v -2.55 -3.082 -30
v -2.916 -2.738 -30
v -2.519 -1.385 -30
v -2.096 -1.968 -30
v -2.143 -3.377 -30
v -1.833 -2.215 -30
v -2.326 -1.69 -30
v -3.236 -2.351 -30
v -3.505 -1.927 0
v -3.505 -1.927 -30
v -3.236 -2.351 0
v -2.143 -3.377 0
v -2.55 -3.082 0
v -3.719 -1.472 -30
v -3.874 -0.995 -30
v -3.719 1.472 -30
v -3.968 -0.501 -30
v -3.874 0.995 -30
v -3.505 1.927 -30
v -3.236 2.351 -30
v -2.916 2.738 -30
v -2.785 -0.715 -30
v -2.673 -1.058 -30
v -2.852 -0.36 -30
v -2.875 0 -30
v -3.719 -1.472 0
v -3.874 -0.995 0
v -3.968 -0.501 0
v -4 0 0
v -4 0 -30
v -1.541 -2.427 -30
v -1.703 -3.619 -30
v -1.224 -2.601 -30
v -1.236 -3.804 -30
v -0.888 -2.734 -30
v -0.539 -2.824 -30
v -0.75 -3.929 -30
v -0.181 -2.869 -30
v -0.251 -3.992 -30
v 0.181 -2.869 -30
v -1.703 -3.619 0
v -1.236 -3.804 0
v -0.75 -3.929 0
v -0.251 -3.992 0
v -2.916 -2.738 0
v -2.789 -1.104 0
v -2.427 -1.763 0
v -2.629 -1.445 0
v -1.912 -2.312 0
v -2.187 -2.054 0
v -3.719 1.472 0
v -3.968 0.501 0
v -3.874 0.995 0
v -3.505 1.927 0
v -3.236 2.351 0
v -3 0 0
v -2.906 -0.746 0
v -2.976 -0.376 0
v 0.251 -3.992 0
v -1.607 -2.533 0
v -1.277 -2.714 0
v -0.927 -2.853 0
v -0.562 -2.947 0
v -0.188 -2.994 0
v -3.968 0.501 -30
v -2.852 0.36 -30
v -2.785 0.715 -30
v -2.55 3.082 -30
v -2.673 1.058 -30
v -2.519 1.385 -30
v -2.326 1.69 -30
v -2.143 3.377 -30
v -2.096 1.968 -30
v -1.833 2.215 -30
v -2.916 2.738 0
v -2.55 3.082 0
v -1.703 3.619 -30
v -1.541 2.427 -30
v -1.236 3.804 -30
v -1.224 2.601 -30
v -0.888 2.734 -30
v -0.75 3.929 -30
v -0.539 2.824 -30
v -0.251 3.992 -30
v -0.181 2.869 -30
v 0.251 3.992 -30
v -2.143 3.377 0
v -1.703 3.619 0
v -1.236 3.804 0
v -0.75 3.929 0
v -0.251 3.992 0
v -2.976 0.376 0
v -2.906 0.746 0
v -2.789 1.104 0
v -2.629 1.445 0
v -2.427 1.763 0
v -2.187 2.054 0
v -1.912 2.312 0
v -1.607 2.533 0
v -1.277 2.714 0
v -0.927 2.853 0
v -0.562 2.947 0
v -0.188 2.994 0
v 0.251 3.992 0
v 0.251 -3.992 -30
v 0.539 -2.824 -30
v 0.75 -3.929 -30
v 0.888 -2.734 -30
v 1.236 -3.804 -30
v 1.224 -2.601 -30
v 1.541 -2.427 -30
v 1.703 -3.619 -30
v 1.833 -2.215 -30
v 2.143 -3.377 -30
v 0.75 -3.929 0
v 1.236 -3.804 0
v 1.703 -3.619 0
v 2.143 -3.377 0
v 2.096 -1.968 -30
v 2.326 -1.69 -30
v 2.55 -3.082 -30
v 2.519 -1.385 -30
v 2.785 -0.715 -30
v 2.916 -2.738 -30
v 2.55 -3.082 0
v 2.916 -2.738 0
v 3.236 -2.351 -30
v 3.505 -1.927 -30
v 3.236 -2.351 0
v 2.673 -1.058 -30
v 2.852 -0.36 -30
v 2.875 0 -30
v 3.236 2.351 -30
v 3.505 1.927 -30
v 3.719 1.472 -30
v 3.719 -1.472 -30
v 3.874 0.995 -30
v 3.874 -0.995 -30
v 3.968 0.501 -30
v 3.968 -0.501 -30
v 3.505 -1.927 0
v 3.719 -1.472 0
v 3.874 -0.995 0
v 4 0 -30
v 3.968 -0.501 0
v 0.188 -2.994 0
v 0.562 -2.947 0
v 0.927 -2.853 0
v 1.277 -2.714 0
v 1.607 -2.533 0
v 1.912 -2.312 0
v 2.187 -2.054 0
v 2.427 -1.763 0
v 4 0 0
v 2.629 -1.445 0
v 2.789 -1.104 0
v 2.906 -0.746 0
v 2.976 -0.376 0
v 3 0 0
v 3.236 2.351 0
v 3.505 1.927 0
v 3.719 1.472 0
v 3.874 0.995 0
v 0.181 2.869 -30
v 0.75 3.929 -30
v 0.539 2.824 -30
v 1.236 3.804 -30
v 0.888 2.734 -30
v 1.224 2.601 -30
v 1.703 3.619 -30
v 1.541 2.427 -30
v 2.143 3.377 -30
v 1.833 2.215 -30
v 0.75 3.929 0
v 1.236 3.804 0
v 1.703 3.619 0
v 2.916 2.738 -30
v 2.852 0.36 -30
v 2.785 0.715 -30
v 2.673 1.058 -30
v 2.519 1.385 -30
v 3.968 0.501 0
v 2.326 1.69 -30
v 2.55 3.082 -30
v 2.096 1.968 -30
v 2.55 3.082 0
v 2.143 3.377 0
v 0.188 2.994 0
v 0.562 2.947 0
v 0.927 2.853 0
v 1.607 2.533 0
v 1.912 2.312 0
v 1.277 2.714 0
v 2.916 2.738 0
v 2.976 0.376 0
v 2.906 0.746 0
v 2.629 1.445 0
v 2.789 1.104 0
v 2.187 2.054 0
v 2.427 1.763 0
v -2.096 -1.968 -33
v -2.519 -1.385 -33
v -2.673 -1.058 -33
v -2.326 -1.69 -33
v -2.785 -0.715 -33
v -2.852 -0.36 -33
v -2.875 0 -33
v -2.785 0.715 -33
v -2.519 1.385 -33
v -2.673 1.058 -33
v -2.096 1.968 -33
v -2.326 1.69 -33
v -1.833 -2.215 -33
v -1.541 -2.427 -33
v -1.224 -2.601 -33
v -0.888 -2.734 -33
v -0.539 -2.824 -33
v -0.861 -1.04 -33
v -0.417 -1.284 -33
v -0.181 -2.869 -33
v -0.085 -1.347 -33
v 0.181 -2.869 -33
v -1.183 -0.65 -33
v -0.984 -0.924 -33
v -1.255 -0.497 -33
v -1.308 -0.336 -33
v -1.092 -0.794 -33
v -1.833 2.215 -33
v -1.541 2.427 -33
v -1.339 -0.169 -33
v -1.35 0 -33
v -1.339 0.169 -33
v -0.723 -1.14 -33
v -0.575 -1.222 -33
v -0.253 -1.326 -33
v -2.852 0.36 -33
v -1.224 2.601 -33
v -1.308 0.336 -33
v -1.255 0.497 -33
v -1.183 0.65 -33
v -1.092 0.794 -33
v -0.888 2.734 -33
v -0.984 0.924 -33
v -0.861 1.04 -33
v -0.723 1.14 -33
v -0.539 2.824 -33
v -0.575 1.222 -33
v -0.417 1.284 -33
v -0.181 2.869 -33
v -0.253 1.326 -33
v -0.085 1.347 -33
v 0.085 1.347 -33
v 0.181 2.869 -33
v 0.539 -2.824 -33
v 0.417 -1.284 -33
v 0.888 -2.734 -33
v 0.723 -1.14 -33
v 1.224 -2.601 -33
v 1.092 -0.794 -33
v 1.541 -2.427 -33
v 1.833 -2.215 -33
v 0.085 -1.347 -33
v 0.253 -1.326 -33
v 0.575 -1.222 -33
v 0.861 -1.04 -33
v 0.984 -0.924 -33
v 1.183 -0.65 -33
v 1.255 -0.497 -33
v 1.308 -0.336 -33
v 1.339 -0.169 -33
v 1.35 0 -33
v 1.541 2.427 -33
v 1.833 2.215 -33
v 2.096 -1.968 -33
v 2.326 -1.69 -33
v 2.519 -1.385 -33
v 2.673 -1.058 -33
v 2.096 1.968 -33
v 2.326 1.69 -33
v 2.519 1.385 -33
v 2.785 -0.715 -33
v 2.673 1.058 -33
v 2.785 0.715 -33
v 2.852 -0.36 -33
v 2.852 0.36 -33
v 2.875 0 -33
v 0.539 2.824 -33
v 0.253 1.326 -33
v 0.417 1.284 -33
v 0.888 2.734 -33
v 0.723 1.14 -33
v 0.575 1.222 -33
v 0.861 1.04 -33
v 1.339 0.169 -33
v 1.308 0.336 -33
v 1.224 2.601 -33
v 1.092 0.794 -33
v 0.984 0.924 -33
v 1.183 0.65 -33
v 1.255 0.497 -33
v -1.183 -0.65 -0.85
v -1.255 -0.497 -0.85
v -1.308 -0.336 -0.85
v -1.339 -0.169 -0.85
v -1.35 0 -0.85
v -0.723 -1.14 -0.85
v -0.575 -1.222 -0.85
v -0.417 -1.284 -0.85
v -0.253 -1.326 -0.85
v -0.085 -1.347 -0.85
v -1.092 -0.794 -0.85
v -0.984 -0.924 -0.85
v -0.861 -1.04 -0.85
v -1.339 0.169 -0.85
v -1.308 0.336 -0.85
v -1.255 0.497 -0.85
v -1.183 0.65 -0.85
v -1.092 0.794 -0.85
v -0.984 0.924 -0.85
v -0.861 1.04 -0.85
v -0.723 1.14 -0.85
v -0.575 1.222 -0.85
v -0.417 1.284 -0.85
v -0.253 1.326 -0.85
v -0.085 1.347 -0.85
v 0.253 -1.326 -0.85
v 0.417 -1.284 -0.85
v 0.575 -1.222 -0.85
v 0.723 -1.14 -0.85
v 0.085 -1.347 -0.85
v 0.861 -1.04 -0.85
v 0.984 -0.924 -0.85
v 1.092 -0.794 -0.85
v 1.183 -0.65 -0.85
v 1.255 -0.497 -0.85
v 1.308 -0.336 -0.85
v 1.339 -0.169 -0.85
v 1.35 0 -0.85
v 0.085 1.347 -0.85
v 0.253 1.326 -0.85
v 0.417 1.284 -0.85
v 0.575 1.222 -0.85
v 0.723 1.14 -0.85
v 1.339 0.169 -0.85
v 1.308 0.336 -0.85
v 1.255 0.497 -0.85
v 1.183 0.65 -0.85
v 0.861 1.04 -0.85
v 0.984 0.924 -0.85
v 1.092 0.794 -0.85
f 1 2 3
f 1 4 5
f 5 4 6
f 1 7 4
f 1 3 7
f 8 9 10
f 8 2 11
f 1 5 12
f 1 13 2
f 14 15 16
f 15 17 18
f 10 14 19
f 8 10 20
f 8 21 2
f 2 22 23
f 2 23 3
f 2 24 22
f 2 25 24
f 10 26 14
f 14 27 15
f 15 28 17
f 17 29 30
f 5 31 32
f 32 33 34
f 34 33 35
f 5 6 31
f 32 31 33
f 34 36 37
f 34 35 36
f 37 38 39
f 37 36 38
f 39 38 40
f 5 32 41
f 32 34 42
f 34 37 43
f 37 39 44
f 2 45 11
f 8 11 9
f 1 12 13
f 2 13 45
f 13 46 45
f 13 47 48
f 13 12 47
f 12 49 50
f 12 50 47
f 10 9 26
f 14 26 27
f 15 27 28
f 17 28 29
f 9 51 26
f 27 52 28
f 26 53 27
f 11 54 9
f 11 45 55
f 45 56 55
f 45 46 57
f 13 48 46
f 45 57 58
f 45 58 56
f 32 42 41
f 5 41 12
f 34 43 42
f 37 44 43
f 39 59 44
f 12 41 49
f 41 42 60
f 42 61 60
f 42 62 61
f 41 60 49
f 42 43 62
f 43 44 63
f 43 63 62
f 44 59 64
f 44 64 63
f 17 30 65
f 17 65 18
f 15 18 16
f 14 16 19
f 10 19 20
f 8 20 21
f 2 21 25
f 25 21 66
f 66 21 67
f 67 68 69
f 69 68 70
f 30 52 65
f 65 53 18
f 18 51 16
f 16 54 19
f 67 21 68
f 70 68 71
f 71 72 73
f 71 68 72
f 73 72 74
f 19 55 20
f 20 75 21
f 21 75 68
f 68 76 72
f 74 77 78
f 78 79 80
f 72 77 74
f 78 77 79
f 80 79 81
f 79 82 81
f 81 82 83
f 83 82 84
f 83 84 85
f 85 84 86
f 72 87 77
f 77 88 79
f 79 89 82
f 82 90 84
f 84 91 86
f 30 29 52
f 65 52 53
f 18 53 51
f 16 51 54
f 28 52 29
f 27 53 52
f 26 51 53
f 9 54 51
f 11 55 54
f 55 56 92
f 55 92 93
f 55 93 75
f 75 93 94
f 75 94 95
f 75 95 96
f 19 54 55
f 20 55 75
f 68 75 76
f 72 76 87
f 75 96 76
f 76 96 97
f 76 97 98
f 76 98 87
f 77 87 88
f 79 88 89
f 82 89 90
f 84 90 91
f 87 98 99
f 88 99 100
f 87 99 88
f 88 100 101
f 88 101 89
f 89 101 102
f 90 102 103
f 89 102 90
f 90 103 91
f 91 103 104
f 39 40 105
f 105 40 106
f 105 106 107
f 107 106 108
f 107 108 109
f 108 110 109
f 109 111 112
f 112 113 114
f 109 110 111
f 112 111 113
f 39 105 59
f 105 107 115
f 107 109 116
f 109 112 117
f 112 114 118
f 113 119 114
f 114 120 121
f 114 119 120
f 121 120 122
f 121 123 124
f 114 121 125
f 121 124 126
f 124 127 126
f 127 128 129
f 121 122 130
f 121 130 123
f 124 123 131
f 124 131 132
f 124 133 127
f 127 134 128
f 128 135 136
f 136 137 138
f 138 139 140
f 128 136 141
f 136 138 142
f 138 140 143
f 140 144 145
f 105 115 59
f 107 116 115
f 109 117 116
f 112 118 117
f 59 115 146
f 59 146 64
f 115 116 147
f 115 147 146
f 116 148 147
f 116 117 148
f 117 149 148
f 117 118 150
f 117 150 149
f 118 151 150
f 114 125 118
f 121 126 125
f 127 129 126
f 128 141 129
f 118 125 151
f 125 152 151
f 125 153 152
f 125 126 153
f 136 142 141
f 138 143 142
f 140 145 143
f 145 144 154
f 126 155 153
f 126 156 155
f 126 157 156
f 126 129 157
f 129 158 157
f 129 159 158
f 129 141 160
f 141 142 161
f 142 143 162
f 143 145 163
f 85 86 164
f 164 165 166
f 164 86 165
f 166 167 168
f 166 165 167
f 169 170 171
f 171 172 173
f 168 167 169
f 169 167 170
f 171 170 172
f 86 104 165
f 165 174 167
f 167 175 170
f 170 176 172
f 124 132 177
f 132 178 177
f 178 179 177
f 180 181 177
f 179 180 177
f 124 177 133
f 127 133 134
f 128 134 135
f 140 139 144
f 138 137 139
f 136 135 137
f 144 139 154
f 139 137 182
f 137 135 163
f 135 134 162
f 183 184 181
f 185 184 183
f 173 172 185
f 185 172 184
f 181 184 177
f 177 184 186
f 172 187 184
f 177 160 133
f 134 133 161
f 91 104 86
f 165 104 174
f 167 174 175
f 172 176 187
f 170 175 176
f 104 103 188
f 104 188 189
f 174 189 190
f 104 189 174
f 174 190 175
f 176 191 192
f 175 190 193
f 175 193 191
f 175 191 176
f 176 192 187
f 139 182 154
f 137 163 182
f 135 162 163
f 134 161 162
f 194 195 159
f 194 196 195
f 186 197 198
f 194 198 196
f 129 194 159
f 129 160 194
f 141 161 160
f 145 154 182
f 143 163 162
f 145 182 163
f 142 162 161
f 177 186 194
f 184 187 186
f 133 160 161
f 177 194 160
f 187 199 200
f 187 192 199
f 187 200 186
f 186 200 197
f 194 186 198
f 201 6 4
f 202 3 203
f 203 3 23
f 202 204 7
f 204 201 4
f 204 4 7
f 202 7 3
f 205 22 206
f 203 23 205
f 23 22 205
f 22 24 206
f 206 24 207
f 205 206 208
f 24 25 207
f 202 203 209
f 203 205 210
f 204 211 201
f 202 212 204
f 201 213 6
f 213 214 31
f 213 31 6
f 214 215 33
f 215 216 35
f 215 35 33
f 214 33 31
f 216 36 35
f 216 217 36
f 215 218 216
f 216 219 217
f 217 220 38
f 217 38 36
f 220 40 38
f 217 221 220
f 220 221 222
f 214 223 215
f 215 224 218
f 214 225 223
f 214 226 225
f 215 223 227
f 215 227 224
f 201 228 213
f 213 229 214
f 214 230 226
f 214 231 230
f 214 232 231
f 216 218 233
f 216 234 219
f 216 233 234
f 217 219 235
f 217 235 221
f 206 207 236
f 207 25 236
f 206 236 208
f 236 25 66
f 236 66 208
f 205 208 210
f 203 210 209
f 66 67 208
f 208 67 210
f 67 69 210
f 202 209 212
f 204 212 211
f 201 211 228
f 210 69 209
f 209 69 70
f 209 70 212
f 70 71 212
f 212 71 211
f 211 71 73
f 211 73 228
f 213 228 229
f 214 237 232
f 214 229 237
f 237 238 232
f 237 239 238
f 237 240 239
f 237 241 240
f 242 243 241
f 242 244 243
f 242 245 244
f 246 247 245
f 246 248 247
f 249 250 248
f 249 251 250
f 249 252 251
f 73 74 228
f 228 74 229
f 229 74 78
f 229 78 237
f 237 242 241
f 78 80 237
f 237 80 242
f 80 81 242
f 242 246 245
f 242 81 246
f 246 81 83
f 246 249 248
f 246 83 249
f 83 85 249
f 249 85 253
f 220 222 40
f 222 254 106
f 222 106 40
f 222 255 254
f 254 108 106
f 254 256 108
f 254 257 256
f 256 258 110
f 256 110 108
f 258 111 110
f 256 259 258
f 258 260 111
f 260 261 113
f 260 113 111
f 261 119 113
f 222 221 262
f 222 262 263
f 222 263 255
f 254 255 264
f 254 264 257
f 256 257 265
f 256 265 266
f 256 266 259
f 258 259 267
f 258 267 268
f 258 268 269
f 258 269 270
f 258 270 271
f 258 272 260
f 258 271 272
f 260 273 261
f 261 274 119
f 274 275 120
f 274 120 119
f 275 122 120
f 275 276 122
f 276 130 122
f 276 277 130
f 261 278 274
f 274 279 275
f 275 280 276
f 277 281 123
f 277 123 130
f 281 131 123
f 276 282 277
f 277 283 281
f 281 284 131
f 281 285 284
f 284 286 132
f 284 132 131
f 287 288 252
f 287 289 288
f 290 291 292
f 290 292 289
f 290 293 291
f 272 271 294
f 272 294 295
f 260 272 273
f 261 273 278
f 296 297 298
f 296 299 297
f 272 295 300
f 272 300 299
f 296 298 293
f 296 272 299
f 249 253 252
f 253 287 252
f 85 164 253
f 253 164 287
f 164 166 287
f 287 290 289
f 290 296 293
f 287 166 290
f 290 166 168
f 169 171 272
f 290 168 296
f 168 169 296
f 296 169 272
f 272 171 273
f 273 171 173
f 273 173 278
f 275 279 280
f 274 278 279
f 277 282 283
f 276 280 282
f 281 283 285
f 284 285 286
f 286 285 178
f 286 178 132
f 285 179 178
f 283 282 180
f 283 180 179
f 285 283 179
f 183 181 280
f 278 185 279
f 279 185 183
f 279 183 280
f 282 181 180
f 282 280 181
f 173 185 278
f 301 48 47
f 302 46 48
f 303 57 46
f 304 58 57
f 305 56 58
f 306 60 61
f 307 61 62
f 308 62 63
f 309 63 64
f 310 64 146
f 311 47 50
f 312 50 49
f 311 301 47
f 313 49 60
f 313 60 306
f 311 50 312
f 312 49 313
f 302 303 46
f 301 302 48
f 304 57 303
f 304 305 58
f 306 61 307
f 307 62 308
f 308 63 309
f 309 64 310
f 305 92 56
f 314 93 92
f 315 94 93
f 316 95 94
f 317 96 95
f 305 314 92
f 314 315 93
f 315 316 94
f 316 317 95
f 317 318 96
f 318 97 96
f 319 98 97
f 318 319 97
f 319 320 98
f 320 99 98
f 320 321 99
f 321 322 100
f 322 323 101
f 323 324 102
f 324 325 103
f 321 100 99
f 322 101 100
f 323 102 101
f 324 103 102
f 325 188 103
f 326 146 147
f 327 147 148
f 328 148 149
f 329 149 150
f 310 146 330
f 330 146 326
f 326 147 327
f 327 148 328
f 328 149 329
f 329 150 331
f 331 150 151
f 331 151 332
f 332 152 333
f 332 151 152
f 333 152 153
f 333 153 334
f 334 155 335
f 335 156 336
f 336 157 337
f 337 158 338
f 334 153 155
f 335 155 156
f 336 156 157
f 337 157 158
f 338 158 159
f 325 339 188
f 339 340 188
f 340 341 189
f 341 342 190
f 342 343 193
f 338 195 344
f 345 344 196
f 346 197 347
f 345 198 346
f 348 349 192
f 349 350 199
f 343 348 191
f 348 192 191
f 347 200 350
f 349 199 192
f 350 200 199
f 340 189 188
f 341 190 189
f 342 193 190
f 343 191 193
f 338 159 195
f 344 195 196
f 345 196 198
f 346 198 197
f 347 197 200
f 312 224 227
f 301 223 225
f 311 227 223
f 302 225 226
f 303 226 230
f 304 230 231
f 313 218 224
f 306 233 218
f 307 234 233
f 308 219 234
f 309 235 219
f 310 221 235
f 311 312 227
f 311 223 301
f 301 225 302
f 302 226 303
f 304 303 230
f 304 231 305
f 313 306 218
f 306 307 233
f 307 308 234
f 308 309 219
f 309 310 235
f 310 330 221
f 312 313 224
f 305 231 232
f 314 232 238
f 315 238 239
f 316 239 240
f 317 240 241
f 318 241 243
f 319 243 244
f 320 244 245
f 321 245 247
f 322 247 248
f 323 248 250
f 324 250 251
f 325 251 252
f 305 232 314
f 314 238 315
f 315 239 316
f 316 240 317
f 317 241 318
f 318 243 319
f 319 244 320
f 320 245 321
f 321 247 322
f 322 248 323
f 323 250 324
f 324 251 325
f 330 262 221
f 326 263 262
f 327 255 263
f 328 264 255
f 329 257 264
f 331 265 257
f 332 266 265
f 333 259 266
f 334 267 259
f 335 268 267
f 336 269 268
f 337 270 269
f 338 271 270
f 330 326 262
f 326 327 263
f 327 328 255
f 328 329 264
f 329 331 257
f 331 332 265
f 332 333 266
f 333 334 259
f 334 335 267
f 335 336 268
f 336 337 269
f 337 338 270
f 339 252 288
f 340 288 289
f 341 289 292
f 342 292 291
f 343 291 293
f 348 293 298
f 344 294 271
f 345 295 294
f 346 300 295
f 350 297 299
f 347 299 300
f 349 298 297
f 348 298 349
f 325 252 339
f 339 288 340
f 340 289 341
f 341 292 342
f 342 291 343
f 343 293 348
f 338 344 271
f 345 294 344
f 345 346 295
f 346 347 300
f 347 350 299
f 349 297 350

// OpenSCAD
$fn = 50;

difference() {
	union() {
		translate(v = [0, 0, -30.0]) {
			cylinder(h = 30, r = 4.0);
		}
		#translate(v = [0, 0, -33.0]) {
			cylinder(h = 33, r = 2.875);
		}
	}
	union() {
		translate(v = [0, 0, 0]) {
			rotate(a = [0, 0, 0]) {
				difference() {
					union() {
						translate(v = [0, 0, -33.0]) {
							cylinder(h = 33, r = 1.0);
						}
						translate(v = [0, 0, -0.85]) {
							cylinder(h = 0.85, r1 = 1.35, r2 = 3.0);
						}
						translate(v = [0, 0, -33.0]) {
							cylinder(h = 33, r = 1.35);
						}
						translate(v = [0, 0, -33.0]) {
							cylinder(h = 33, r = 1.0);
						}
					}
					union();
				}
			}
		}
	}
}
